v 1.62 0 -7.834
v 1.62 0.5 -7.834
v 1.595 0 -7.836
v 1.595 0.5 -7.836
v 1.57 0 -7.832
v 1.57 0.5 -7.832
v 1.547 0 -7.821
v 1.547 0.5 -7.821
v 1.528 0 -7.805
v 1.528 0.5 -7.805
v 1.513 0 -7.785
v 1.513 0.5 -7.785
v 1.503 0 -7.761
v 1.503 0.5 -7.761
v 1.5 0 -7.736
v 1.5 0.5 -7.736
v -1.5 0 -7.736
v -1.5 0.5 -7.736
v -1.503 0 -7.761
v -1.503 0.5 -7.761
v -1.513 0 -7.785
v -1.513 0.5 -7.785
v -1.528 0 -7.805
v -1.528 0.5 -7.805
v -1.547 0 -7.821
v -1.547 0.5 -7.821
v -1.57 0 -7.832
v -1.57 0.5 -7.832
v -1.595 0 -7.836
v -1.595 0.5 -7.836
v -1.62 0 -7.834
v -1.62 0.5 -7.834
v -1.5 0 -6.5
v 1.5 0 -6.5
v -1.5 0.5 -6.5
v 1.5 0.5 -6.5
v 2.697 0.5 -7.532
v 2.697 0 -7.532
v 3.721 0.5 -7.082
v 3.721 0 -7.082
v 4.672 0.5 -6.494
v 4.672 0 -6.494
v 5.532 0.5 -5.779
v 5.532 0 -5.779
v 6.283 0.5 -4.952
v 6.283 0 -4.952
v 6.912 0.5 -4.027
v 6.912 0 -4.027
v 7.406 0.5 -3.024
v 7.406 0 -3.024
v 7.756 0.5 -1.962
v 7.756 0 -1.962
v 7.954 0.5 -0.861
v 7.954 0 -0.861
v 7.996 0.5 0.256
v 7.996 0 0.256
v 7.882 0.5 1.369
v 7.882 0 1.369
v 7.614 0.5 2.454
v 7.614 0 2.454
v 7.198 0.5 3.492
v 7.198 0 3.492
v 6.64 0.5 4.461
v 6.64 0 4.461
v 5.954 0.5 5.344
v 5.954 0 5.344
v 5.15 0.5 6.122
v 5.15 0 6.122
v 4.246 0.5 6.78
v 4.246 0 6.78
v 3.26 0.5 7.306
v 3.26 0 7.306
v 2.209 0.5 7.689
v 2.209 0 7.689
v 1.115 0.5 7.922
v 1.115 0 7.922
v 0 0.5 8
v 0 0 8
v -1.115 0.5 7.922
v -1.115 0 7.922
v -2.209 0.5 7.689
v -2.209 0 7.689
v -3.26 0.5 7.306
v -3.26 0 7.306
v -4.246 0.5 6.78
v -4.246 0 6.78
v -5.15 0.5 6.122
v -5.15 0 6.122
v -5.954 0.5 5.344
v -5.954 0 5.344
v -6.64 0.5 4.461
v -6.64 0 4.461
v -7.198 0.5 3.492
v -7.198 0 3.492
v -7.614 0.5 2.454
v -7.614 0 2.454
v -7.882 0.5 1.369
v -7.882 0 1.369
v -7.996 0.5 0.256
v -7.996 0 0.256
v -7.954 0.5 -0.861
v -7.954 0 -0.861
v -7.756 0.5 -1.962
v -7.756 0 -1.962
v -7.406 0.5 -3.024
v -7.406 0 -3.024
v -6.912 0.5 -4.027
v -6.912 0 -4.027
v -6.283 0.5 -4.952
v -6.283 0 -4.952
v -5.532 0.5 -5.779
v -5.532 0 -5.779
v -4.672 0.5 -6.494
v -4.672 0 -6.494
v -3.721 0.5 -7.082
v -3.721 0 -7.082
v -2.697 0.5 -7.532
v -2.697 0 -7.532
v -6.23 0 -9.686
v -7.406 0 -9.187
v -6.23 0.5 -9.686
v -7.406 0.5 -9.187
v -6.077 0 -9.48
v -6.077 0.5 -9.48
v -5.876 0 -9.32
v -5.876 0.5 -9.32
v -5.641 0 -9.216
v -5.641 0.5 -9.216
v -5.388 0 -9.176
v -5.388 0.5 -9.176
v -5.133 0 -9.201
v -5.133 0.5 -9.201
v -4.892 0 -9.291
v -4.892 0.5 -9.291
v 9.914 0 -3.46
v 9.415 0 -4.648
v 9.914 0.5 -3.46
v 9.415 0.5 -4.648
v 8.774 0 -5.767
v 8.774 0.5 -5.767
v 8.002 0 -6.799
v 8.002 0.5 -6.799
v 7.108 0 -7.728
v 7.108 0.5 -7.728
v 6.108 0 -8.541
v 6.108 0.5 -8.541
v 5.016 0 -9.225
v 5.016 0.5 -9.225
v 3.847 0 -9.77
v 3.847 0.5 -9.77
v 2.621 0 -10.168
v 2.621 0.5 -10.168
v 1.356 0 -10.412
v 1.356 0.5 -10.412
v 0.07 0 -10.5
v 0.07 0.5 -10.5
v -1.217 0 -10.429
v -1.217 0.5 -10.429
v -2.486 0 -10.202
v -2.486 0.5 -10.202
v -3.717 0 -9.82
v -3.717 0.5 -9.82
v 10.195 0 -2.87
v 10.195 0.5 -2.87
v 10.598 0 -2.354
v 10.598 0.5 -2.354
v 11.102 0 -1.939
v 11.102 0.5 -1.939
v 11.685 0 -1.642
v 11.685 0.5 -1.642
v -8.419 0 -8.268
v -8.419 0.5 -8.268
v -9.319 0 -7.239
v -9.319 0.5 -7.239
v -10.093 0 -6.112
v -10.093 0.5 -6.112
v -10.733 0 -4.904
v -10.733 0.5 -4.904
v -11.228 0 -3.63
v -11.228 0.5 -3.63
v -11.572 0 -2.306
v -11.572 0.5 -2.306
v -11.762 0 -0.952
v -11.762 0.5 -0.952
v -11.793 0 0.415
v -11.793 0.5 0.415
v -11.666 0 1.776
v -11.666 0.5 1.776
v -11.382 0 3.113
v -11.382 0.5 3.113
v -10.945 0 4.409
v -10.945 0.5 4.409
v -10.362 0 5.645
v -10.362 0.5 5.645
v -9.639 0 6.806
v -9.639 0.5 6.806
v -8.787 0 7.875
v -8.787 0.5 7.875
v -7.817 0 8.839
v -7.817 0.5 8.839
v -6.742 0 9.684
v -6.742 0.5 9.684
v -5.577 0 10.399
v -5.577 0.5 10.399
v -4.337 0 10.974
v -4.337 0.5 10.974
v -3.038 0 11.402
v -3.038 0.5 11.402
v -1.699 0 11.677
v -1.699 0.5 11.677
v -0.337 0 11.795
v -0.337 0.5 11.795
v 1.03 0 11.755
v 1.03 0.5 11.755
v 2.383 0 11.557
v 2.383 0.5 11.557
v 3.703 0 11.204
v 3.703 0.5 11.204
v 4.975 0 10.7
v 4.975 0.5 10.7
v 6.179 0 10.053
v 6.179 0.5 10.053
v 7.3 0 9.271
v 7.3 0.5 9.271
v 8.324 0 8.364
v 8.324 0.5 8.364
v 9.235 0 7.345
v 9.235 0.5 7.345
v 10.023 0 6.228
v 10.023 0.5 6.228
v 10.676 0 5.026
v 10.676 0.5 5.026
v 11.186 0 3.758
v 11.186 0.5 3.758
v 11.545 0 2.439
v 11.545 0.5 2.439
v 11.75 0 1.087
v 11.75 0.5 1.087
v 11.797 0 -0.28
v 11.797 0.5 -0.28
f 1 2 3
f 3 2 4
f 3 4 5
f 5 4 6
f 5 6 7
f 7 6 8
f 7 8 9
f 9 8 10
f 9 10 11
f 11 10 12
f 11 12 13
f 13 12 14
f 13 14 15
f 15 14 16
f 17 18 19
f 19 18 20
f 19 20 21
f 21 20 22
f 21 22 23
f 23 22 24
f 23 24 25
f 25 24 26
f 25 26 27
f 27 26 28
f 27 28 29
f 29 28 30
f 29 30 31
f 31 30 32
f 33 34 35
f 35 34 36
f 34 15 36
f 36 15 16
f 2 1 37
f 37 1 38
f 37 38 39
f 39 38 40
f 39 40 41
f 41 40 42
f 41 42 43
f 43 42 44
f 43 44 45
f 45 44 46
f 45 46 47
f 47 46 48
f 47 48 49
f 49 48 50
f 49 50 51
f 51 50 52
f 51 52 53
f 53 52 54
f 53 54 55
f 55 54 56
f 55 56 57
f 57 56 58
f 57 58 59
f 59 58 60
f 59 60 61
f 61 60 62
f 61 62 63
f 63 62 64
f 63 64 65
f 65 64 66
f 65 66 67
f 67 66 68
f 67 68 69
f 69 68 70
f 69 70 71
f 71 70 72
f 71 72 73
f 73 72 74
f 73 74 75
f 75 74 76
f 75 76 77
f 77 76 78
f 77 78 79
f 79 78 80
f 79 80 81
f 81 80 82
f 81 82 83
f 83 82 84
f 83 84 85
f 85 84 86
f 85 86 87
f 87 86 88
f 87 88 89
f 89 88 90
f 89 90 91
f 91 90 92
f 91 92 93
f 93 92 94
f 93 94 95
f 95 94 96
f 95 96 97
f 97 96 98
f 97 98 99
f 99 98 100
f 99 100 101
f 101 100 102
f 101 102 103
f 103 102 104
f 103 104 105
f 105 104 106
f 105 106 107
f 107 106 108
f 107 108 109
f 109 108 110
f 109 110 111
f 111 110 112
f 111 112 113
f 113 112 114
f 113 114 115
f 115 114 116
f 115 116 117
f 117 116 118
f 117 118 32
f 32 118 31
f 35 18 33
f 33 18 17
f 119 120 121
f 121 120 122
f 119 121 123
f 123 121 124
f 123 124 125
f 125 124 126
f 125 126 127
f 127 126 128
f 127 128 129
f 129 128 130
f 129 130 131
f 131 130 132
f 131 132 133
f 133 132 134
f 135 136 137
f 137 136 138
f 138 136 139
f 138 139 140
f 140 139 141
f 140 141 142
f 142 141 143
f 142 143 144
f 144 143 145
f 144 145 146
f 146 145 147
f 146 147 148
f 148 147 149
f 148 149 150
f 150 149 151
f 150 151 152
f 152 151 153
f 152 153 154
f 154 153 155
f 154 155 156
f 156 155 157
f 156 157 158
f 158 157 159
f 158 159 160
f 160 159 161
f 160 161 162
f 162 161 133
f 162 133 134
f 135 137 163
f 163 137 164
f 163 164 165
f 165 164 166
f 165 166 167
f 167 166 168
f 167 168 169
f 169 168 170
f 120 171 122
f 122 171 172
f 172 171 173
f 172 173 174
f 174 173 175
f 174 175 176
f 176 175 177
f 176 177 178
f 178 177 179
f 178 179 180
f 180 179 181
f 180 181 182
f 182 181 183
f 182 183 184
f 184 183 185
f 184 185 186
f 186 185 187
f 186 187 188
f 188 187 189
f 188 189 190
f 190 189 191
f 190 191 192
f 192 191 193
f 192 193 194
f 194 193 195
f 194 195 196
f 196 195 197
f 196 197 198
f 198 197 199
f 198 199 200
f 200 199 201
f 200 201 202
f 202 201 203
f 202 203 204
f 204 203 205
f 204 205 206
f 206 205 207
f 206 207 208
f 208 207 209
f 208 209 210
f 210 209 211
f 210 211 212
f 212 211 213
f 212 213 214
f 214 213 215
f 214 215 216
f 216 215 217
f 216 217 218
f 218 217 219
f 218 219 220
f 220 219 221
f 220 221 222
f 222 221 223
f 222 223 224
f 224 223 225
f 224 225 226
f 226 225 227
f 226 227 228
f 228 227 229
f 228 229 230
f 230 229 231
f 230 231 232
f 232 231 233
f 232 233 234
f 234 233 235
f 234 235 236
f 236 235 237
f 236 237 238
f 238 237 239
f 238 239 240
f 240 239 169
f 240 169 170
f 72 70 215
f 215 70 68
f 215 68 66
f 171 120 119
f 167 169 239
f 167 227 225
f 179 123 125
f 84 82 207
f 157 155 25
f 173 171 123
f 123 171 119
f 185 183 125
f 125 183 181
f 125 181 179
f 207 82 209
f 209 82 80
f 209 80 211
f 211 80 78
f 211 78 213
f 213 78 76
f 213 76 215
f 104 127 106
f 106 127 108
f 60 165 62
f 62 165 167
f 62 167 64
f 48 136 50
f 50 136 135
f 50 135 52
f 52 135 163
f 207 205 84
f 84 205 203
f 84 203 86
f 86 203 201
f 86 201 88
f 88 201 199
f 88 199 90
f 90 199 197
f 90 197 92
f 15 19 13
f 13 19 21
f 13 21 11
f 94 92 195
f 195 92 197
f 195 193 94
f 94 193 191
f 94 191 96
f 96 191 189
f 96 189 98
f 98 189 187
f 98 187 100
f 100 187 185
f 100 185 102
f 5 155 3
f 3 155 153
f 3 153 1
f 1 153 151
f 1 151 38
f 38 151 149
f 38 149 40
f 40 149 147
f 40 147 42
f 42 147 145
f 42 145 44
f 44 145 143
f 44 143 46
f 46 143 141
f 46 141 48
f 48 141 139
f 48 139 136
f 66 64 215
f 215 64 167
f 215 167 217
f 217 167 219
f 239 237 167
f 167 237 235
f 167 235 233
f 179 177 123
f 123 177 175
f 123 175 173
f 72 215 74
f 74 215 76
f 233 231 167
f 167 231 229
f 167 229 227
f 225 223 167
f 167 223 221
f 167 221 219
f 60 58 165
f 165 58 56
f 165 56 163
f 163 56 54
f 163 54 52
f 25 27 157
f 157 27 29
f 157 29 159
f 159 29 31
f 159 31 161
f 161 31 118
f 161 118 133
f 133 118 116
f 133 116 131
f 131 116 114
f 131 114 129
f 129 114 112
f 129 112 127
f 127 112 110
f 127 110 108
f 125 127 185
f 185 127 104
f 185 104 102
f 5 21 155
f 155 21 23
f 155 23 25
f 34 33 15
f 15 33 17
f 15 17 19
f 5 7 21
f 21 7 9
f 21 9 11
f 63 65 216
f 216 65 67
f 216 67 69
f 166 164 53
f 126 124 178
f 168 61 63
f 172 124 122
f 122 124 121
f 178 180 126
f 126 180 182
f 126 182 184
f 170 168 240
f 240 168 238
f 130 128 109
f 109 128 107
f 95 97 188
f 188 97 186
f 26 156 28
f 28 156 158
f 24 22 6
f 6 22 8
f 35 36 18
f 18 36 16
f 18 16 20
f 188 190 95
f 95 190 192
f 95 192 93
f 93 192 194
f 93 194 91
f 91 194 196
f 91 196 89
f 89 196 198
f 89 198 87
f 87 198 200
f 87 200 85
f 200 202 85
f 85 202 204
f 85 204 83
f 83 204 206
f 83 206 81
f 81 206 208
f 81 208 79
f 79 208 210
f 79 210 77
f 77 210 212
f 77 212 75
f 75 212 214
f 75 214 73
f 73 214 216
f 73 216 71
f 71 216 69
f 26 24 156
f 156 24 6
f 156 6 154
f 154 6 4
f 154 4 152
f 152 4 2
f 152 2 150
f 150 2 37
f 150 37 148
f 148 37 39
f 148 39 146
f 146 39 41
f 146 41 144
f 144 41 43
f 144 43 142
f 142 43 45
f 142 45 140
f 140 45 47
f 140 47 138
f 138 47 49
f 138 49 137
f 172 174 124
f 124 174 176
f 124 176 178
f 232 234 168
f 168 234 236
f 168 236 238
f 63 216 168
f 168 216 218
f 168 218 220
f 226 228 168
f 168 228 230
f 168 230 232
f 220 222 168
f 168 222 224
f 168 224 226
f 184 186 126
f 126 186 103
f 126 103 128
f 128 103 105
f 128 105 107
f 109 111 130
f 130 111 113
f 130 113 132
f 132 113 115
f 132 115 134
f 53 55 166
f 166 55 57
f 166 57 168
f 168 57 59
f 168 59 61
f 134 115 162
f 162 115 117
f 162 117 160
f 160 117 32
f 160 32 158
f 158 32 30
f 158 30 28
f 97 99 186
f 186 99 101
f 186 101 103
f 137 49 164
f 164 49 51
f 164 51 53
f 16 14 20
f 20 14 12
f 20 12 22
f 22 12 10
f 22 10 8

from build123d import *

# Parameters (mm, degrees)
BOSS_EXTRUDE1_DEPTH = 0.5
FILLET1_R           = 0.1


with BuildPart() as part:
    # Sketch1 → Boss-Extrude1 (new body)
    with BuildSketch(Plane(origin=(0, 0, 0), x_dir=(1, 0, 0), z_dir=(0, 1, 0))):
        with BuildLine():
            Line((-7.405833782, 9.18660035), (-6.230046676, 9.685692366))
            ThreePointArc((-6.230046676, 9.685692366), (-5.641408049, 9.216396236), (-4.892259398, 9.29062958))
            ThreePointArc((-4.892259398, 9.29062958), (3.847452899, 9.769703485), (9.913592586, 3.459867344))
            ThreePointArc((9.913592586, 3.459867344), (10.597684768, 2.354472244), (11.685163211, 1.642242591))
            ThreePointArc((11.685163211, 1.642242591), (2.904608858, -11.436924735), (-11.052731833, -4.132447099))
            ThreePointArc((-11.052731833, -4.132447099), (-11.381077163, 3.116261), (-7.405833782, 9.18660035))
        make_face()
        with BuildLine():
            Line((-1.5, 6.5), (1.5, 6.5))
            Line((1.5, 6.5), (1.5, 7.858116823))
            ThreePointArc((1.5, 7.858116823), (0, -8), (-1.5, 7.858116823))
            Line((-1.5, 7.858116823), (-1.5, 6.5))
        make_face(mode=Mode.SUBTRACT)
    extrude(amount=BOSS_EXTRUDE1_DEPTH)

    # Fillet1
    fillet1_edges = [part.edges().sort_by_distance(p)[0] for p in [
        (-1.5, 0.25, -7.858116823),
        (1.5, 0.25, -7.858116823),
    ]]
    fillet(fillet1_edges, radius=FILLET1_R)


solid = part.part
